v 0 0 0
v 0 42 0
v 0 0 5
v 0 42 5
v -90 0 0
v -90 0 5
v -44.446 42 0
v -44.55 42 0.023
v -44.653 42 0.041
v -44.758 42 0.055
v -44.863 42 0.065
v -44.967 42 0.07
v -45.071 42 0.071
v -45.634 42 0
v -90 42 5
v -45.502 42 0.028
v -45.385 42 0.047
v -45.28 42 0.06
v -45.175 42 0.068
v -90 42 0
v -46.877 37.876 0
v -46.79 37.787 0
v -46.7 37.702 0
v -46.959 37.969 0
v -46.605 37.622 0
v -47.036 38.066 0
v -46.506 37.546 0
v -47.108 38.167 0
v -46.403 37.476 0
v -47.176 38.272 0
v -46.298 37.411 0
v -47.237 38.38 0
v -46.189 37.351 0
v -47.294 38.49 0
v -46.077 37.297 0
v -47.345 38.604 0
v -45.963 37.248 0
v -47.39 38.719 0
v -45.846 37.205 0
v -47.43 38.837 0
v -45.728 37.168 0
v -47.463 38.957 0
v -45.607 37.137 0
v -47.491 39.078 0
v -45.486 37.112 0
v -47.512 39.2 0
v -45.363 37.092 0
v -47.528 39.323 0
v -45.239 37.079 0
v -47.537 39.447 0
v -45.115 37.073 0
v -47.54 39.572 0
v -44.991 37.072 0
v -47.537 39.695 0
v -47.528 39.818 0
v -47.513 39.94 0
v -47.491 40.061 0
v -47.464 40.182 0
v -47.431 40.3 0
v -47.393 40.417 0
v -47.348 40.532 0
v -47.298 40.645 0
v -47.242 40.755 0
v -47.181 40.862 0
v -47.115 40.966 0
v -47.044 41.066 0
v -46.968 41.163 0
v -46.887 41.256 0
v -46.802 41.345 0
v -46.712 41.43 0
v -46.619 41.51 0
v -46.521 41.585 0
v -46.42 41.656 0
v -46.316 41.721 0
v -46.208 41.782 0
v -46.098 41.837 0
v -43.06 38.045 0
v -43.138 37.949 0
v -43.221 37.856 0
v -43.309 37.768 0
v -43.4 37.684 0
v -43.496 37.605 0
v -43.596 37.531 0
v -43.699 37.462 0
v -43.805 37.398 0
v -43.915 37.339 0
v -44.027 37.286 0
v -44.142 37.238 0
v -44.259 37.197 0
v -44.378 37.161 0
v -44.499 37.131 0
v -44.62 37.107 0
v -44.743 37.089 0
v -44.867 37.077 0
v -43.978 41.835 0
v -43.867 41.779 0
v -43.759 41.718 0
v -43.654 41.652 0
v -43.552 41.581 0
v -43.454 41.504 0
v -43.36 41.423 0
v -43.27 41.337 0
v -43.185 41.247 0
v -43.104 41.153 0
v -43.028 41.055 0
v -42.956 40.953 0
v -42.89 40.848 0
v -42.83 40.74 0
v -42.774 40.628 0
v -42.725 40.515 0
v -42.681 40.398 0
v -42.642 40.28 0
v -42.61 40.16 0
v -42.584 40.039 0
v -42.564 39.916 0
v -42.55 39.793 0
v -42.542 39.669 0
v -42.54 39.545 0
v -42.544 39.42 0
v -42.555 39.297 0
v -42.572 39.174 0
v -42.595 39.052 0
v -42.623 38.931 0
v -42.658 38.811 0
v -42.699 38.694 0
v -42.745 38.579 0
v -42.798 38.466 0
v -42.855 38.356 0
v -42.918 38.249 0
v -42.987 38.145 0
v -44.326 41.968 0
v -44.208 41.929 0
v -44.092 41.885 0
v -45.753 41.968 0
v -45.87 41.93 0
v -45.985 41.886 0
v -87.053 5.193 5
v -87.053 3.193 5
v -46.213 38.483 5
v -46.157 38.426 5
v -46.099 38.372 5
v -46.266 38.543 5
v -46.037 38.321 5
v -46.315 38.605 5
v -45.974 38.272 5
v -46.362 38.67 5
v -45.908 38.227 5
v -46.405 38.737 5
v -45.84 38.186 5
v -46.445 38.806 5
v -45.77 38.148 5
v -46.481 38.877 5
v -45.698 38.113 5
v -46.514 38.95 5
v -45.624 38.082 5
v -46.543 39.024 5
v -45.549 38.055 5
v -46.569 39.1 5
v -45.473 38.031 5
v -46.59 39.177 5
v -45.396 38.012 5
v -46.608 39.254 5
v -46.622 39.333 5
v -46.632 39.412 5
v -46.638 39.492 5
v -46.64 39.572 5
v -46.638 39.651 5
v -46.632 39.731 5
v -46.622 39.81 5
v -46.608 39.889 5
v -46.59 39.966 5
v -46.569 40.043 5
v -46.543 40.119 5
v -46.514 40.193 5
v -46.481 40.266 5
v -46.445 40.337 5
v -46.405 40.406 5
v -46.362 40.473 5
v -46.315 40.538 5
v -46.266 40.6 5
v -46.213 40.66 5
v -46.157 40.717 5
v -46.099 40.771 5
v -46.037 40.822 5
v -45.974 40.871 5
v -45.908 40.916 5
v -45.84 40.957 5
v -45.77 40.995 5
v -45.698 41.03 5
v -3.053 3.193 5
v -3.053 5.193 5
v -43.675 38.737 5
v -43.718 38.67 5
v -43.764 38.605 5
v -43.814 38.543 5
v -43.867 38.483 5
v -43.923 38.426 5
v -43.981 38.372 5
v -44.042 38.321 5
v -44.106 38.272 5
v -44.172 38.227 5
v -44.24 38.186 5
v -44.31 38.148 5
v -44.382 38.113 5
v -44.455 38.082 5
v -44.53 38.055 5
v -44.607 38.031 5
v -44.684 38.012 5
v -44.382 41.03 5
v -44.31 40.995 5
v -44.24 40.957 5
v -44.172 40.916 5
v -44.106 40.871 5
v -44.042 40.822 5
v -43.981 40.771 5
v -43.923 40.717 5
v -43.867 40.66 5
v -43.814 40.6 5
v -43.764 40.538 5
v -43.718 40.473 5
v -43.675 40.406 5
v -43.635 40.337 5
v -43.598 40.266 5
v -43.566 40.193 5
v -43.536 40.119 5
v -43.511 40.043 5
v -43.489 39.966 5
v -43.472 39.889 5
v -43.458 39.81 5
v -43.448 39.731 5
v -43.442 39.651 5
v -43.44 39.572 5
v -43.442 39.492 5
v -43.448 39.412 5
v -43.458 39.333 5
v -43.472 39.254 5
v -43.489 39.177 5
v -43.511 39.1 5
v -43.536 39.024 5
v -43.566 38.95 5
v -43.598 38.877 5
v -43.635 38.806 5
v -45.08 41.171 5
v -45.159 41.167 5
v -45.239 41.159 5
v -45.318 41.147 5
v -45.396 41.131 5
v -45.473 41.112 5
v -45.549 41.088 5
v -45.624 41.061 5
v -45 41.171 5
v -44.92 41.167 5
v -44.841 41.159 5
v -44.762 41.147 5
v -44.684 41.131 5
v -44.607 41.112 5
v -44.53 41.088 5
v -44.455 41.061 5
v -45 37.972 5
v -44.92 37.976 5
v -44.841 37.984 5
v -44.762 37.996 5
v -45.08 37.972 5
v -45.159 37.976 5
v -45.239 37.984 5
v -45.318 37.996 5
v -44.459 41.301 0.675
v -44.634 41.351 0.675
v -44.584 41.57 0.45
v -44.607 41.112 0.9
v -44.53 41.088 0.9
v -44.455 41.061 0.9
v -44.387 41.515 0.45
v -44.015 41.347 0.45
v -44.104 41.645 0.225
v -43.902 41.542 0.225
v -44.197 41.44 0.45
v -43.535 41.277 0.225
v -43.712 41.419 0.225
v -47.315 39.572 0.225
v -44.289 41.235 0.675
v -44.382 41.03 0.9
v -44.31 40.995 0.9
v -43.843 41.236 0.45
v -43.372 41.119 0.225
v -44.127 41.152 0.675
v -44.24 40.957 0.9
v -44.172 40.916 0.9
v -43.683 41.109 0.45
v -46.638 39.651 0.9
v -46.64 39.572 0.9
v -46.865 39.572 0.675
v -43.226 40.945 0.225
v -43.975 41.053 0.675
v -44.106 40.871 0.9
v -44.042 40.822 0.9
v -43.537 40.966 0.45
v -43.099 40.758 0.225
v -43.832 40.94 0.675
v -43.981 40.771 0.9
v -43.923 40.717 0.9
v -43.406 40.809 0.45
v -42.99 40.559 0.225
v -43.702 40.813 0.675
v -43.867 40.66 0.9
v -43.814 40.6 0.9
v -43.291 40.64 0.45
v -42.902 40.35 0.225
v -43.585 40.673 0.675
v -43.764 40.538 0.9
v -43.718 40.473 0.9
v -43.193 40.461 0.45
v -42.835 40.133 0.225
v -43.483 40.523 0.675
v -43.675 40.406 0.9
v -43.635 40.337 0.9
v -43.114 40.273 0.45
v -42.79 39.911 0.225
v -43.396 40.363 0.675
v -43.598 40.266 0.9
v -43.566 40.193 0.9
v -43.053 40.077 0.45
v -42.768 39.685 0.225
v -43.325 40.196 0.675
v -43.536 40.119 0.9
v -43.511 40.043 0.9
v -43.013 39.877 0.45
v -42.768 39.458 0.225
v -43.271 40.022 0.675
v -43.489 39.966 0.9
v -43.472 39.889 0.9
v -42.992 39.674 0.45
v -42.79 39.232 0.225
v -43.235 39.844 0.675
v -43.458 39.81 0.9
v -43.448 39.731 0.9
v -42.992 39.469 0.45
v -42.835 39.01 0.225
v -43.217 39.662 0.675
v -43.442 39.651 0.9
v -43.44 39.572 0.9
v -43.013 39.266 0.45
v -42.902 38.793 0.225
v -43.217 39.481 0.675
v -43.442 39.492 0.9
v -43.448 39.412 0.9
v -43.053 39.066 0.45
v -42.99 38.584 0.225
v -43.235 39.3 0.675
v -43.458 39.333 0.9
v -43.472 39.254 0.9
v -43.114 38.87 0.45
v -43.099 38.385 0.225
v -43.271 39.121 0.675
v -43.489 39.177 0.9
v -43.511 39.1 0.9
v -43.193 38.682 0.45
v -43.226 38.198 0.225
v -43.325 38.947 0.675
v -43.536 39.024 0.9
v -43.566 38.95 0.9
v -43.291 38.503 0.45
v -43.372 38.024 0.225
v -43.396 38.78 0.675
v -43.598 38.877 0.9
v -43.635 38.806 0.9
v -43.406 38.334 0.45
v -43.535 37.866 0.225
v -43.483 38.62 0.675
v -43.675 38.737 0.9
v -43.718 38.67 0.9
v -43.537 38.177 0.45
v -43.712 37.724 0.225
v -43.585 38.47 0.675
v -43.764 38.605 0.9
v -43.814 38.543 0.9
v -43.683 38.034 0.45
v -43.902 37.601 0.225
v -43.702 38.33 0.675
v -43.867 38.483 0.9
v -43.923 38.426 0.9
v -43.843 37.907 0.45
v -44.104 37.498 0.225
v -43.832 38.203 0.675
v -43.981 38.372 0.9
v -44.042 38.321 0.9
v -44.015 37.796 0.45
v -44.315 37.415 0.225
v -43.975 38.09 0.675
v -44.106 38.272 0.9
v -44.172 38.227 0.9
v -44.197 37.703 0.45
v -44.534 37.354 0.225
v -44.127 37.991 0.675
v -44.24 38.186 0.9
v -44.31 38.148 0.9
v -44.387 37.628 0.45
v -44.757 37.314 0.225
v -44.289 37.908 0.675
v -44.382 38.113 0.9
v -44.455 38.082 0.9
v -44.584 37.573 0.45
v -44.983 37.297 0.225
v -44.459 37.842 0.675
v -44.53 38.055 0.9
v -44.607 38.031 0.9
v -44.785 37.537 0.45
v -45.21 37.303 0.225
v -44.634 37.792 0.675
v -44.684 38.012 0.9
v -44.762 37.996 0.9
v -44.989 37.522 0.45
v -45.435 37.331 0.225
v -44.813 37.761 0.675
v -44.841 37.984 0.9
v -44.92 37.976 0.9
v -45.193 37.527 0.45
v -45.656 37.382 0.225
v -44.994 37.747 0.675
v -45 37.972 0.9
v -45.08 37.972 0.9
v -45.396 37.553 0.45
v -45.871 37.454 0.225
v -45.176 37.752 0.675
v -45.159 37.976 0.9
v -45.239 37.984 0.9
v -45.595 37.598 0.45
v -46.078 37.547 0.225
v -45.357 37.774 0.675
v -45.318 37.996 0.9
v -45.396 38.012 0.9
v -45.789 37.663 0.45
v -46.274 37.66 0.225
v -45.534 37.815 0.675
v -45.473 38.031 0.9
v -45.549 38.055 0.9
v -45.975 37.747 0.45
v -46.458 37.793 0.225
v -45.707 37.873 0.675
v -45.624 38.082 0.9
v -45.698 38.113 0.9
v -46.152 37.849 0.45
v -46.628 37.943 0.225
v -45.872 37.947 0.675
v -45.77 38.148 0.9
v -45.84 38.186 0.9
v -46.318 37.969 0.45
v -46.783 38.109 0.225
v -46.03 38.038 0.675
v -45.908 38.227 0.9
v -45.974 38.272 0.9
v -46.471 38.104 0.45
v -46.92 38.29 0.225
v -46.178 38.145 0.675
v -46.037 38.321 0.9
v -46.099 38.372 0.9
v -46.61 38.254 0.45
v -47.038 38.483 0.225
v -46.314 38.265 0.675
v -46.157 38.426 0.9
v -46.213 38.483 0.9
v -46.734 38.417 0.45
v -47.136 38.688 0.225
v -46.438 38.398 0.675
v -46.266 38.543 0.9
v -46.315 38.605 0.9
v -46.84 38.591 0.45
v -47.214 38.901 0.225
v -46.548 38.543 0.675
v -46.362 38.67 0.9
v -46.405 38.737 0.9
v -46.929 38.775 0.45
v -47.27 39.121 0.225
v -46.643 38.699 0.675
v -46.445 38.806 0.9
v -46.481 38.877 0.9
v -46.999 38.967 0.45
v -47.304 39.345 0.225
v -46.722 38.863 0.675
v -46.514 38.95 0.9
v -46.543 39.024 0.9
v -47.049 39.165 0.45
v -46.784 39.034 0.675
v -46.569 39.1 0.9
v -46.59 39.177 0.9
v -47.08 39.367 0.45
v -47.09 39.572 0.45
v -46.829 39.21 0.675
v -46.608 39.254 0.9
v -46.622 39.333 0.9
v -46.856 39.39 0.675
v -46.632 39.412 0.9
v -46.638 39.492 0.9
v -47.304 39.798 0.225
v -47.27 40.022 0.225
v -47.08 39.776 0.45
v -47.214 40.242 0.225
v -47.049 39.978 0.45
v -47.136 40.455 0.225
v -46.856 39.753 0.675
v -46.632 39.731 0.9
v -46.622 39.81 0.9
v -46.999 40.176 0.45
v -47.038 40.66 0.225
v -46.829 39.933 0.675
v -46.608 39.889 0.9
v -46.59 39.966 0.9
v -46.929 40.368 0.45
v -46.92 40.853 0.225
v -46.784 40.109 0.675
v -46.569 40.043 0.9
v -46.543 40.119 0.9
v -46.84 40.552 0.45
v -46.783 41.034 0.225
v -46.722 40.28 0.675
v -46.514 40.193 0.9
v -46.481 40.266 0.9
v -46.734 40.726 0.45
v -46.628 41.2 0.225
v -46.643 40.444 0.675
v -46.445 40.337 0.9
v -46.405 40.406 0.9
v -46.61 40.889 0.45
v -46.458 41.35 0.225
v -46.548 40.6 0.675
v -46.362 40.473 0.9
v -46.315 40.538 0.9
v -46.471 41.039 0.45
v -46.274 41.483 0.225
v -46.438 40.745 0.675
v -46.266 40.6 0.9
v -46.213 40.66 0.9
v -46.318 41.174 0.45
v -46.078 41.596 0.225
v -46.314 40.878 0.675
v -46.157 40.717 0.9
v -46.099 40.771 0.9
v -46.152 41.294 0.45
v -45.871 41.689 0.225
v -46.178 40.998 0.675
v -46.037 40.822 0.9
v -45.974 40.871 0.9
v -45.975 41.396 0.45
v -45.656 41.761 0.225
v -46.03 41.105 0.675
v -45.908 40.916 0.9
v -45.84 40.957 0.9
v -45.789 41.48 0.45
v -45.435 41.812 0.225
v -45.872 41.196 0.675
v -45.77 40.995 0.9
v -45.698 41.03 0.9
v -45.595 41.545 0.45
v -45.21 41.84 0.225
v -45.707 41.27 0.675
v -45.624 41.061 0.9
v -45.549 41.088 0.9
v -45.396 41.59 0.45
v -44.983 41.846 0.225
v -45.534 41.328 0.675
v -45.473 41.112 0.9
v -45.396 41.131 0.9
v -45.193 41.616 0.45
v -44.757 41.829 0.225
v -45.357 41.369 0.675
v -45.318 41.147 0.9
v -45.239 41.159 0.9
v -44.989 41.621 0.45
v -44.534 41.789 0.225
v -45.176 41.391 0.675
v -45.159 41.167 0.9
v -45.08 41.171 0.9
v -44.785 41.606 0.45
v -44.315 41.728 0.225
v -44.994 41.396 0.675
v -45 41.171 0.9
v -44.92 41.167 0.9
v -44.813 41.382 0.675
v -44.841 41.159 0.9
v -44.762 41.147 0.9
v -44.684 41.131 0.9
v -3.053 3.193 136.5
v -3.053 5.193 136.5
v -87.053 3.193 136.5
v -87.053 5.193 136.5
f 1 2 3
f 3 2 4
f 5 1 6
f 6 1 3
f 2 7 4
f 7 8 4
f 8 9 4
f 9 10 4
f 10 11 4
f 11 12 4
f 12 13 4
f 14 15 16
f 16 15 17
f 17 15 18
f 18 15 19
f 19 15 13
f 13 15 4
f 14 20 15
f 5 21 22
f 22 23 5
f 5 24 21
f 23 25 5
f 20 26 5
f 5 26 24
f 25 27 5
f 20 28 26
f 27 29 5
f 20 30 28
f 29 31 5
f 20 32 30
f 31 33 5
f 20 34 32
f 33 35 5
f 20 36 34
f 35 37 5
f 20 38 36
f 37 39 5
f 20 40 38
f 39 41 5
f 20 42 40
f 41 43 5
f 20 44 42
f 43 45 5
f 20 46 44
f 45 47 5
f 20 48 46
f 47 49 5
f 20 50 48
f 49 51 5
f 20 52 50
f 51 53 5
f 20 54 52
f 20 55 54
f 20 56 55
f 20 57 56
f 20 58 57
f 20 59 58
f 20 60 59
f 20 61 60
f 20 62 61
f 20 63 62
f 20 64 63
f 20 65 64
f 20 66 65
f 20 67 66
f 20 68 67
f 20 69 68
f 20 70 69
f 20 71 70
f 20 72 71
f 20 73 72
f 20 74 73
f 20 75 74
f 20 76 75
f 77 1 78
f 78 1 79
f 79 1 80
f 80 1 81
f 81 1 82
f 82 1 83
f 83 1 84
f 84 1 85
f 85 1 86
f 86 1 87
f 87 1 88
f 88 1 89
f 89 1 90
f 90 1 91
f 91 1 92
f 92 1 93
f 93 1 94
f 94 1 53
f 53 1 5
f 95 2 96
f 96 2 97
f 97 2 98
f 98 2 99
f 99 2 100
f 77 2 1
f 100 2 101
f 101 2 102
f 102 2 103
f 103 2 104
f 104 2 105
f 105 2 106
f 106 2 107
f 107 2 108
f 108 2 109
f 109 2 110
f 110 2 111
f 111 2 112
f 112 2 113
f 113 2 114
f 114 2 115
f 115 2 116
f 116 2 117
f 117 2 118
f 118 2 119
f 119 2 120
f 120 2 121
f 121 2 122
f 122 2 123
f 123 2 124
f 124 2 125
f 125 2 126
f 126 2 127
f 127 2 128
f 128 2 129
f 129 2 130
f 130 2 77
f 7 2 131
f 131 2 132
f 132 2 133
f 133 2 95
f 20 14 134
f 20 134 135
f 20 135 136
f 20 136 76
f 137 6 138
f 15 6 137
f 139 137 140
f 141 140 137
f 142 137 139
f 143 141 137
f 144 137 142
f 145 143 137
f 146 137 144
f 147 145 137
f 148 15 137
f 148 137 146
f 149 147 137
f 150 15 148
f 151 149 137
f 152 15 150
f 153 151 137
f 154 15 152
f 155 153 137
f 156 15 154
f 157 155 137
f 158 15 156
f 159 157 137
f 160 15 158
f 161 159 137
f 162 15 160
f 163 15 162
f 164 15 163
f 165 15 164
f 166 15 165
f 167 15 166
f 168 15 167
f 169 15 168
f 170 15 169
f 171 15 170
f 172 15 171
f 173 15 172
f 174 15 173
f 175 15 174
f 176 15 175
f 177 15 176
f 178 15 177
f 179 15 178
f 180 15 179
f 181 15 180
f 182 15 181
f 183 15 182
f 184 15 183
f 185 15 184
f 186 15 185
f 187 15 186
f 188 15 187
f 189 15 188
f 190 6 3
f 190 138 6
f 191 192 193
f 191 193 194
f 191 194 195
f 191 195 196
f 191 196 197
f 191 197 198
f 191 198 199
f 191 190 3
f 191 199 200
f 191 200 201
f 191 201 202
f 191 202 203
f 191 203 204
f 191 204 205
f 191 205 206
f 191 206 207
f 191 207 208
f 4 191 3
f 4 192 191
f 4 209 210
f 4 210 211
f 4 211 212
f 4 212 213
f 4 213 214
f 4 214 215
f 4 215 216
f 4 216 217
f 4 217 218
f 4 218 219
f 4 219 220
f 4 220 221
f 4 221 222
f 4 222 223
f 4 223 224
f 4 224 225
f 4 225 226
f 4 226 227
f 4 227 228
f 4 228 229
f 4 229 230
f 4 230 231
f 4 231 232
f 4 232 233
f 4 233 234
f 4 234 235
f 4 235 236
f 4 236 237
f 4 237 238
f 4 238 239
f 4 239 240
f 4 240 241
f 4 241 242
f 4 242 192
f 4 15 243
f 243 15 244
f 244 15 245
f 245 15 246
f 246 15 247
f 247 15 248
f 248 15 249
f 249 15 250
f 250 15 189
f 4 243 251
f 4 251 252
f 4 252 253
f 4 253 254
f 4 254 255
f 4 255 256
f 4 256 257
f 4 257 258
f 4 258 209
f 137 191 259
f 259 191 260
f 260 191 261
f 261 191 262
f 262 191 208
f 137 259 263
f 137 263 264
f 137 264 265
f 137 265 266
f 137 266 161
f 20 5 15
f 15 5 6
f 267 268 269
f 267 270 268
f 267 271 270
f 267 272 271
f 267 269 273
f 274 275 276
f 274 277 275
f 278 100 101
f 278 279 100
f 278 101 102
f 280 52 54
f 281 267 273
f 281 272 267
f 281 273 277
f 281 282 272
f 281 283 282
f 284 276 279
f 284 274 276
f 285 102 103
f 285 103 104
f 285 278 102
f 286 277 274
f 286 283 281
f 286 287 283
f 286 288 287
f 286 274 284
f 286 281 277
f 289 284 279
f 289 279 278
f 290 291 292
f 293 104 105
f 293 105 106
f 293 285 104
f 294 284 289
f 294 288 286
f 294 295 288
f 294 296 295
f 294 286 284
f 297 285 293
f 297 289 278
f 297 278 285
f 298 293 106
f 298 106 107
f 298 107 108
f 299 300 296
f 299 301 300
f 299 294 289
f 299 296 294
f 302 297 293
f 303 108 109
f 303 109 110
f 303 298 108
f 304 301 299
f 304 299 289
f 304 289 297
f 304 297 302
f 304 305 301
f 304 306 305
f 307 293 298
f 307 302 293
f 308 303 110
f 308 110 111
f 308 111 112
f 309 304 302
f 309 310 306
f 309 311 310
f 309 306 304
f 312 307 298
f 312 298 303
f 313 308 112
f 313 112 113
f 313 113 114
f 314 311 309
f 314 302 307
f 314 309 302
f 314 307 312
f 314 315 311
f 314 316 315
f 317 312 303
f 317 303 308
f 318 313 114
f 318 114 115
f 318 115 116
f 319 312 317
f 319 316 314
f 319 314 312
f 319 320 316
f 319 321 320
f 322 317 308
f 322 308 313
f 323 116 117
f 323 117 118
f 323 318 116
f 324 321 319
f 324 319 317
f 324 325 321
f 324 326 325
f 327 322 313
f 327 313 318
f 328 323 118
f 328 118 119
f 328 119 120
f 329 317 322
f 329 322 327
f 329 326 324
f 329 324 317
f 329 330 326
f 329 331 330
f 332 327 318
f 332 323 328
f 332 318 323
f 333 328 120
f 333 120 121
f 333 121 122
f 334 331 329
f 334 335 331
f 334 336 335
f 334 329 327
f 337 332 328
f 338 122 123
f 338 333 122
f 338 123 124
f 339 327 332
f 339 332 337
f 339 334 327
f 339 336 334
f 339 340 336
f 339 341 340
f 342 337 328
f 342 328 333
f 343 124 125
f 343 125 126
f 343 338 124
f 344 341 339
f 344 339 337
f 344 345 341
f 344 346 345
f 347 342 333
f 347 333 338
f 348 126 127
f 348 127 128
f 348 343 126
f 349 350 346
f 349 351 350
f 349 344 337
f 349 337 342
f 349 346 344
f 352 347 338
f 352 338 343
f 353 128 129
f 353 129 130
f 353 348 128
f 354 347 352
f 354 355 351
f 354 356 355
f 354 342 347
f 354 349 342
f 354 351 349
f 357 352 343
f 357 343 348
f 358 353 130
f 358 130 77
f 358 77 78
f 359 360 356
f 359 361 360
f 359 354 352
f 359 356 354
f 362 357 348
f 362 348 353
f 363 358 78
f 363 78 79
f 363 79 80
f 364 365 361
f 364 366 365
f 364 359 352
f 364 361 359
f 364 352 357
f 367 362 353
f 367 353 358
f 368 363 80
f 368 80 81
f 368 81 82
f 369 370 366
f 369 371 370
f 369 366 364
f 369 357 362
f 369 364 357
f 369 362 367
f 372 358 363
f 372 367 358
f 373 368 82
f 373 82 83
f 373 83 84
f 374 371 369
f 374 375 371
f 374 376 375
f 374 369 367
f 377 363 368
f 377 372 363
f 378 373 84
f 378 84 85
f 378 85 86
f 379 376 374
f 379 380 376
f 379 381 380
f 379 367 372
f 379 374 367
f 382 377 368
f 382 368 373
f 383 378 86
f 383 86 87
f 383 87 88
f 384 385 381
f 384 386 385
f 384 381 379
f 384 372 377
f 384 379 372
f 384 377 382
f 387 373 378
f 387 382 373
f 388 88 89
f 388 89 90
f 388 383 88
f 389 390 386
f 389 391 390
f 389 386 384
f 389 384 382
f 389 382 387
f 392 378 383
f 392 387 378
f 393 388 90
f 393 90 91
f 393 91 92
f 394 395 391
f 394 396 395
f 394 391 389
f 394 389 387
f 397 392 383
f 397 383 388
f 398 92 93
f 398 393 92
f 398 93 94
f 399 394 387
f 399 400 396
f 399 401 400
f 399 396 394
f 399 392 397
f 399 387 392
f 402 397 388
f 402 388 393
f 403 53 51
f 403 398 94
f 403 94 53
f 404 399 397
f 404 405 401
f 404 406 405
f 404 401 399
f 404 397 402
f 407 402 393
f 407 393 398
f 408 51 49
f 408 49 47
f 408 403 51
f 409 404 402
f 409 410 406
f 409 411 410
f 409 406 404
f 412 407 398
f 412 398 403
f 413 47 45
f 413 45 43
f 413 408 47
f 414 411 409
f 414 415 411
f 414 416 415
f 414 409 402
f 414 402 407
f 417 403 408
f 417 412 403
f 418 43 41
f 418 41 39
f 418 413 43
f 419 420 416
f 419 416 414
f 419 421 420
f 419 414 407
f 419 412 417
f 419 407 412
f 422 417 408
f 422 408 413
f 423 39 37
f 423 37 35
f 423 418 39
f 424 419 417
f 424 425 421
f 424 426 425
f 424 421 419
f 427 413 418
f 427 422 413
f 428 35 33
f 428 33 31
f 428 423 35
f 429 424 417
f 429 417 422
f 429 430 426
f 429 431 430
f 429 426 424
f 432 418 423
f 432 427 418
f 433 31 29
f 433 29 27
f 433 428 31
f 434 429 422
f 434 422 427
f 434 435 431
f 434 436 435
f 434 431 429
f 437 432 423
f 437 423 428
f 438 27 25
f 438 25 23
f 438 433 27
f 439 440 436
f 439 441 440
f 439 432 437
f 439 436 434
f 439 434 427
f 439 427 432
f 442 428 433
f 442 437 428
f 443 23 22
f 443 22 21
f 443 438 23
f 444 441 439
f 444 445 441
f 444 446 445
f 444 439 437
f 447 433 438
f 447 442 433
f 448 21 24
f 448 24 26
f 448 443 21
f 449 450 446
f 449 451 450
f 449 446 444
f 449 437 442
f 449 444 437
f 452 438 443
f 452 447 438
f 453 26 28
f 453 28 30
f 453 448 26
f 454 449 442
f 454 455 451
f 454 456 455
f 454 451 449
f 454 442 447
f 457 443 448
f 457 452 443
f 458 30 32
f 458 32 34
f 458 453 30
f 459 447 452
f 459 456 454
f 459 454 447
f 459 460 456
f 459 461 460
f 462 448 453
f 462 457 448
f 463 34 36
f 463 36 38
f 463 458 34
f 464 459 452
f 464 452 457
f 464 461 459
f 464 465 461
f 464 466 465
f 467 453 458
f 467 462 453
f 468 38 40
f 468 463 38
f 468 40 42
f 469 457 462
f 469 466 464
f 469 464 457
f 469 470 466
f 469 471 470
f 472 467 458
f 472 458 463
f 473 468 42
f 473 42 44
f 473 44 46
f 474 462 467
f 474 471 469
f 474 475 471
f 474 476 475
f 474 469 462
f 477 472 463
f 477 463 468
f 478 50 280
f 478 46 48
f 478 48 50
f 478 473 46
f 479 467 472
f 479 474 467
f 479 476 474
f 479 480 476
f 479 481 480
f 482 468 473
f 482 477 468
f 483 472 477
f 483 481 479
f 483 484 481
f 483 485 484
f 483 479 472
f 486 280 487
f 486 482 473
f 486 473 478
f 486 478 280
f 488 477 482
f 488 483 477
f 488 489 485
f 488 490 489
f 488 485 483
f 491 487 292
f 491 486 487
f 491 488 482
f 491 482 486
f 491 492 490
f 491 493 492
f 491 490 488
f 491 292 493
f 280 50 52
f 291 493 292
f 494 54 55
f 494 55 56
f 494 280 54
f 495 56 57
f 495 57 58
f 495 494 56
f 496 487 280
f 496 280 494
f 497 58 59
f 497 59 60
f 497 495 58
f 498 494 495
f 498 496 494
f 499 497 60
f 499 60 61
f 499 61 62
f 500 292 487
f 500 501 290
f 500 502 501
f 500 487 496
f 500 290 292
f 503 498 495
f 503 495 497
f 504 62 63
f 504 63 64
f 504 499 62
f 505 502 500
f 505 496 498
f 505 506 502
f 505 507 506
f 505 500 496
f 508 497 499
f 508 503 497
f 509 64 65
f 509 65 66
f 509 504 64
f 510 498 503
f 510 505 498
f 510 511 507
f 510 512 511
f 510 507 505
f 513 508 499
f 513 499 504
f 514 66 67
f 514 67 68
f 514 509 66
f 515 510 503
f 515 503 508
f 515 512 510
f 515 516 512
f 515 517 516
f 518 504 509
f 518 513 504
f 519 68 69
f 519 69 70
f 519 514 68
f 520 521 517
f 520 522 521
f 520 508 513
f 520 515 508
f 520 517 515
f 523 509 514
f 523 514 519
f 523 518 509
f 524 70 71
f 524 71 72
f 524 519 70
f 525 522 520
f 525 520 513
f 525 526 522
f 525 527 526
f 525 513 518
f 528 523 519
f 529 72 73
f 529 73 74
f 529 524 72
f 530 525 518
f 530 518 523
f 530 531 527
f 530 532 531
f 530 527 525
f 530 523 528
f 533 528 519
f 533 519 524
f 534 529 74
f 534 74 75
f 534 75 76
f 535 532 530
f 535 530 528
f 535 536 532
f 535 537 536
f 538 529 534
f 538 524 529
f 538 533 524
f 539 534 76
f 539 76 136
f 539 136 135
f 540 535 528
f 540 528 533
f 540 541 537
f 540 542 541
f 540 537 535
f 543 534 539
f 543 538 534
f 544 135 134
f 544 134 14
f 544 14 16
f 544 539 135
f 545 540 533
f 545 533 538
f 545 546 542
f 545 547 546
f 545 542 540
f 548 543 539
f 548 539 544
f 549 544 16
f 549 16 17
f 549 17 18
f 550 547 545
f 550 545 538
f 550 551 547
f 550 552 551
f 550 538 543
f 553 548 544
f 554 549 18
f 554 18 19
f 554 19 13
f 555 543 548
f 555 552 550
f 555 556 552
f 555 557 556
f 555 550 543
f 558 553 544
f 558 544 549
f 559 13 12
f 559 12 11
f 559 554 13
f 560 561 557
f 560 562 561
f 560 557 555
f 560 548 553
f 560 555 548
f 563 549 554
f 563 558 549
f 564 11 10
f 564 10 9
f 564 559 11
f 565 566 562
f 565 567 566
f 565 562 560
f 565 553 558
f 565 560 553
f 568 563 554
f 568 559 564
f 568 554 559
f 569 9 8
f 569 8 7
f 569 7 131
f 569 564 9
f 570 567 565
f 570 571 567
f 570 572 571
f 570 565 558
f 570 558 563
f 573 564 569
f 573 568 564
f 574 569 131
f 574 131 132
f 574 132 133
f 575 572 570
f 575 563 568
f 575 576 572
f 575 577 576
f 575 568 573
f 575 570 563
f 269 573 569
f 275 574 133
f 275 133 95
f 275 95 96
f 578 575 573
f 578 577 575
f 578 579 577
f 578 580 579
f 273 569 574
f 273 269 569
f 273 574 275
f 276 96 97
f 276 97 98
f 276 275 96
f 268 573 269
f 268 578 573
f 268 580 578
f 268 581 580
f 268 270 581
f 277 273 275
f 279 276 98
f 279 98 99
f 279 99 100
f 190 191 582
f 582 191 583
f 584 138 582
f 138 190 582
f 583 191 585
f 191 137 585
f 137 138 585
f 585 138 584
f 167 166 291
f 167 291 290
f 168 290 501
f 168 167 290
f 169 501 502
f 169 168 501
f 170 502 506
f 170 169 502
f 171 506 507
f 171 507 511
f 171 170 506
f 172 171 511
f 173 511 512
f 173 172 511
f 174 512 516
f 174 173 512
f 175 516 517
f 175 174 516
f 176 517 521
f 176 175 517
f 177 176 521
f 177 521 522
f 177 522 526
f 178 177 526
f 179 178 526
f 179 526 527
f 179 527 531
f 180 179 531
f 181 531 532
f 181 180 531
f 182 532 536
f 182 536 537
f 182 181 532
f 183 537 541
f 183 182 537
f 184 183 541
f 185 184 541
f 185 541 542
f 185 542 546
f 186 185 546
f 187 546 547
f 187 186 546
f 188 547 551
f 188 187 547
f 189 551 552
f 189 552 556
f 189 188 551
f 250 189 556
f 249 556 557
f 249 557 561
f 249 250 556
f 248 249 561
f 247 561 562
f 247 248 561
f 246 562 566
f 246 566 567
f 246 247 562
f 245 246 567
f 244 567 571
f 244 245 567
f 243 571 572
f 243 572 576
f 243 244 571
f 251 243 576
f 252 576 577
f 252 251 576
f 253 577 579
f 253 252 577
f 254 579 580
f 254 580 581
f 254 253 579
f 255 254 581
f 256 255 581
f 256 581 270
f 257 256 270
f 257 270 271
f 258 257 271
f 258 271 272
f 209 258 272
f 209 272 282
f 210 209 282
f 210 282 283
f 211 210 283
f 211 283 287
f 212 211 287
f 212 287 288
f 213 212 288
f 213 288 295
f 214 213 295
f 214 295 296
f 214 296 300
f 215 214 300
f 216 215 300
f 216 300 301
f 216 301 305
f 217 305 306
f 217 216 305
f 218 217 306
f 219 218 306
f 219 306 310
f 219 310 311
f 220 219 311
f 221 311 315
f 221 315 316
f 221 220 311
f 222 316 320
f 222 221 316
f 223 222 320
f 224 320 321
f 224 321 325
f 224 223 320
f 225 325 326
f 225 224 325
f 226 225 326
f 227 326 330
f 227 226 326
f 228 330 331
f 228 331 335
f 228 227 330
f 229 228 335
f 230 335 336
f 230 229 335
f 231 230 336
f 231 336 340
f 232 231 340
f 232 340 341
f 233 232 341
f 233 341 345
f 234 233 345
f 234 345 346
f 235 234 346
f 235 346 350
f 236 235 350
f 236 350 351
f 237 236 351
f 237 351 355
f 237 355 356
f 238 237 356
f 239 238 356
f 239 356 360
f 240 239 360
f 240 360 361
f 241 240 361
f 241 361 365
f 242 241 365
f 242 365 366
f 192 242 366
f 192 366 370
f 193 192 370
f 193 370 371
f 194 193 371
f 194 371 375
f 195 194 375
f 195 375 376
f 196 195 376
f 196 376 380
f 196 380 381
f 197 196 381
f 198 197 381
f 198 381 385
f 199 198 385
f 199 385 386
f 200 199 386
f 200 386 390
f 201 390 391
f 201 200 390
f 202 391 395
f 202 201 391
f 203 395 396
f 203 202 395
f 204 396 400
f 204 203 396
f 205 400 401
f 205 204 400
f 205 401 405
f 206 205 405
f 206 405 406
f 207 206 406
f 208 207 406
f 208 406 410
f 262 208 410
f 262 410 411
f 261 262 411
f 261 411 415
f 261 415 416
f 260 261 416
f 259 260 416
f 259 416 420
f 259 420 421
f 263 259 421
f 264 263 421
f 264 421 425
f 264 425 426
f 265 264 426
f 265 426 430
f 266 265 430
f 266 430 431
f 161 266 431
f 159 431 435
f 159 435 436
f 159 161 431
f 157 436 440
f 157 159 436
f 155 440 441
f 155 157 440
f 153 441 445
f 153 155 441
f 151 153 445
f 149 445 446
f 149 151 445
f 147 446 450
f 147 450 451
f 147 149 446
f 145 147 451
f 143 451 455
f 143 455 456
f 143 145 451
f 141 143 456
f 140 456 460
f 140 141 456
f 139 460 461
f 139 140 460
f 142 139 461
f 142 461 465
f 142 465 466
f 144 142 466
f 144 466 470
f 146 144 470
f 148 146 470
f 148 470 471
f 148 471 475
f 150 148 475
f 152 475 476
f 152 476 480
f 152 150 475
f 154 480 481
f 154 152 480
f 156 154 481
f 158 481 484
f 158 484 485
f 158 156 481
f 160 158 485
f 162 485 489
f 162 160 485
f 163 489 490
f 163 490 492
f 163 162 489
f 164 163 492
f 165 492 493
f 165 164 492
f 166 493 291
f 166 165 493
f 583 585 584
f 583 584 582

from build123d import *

# Parameters (mm, degrees)
SKETCH_W         = 90
SKETCH_H         = 42
PAD_DEPTH        = 5
SKETCH001_W      = 84
SKETCH001_H      = 2
PAD001_DEPTH     = 131.5
HOLE_D           = 3.2
HOLE_DEPTH       = 5
HOLE_CSINK_D     = 5
HOLE_CSINK_ANGLE = 90
HOLE_TIPS_R      = 1.6


with BuildPart() as part:
    # Sketch → Pad (new body)
    with BuildSketch(Plane.XY):
        with Locations((-45, 21)):
            Rectangle(SKETCH_W, SKETCH_H)
    extrude(amount=PAD_DEPTH)

    # Sketch001 (on Face6 of Pad) → Pad001 (join)
    with BuildSketch(Plane.XY.offset(5)):
        with Locations((-45.053107, 4.193032)):
            Rectangle(SKETCH001_W, SKETCH001_H)
    extrude(amount=PAD001_DEPTH)

    # Hole
    with Locations(Plane(origin=(0, 0, 0), x_dir=(1, 0, 0), z_dir=(0, 0, -1))):
        with Locations((-45.039894, -39.57151)):
            CounterSinkHole(HOLE_D / 2, HOLE_CSINK_D / 2, depth=HOLE_DEPTH, counter_sink_angle=HOLE_CSINK_ANGLE)

    # Hole tips → Hole tip 1 section 0
    with BuildSketch(Plane(origin=(0, 0, 5), x_dir=(1, 0, 0), z_dir=(0, 0, -1)), mode=Mode.PRIVATE) as hole_tip_1_s0:
        with Locations((-45.039894, -39.57151)):
            Circle(HOLE_TIPS_R)
    loft([hole_tip_1_s0.sketch, Vertex(-45.039894, 39.57151, 5.961377)], mode=Mode.SUBTRACT)


solid = part.part
